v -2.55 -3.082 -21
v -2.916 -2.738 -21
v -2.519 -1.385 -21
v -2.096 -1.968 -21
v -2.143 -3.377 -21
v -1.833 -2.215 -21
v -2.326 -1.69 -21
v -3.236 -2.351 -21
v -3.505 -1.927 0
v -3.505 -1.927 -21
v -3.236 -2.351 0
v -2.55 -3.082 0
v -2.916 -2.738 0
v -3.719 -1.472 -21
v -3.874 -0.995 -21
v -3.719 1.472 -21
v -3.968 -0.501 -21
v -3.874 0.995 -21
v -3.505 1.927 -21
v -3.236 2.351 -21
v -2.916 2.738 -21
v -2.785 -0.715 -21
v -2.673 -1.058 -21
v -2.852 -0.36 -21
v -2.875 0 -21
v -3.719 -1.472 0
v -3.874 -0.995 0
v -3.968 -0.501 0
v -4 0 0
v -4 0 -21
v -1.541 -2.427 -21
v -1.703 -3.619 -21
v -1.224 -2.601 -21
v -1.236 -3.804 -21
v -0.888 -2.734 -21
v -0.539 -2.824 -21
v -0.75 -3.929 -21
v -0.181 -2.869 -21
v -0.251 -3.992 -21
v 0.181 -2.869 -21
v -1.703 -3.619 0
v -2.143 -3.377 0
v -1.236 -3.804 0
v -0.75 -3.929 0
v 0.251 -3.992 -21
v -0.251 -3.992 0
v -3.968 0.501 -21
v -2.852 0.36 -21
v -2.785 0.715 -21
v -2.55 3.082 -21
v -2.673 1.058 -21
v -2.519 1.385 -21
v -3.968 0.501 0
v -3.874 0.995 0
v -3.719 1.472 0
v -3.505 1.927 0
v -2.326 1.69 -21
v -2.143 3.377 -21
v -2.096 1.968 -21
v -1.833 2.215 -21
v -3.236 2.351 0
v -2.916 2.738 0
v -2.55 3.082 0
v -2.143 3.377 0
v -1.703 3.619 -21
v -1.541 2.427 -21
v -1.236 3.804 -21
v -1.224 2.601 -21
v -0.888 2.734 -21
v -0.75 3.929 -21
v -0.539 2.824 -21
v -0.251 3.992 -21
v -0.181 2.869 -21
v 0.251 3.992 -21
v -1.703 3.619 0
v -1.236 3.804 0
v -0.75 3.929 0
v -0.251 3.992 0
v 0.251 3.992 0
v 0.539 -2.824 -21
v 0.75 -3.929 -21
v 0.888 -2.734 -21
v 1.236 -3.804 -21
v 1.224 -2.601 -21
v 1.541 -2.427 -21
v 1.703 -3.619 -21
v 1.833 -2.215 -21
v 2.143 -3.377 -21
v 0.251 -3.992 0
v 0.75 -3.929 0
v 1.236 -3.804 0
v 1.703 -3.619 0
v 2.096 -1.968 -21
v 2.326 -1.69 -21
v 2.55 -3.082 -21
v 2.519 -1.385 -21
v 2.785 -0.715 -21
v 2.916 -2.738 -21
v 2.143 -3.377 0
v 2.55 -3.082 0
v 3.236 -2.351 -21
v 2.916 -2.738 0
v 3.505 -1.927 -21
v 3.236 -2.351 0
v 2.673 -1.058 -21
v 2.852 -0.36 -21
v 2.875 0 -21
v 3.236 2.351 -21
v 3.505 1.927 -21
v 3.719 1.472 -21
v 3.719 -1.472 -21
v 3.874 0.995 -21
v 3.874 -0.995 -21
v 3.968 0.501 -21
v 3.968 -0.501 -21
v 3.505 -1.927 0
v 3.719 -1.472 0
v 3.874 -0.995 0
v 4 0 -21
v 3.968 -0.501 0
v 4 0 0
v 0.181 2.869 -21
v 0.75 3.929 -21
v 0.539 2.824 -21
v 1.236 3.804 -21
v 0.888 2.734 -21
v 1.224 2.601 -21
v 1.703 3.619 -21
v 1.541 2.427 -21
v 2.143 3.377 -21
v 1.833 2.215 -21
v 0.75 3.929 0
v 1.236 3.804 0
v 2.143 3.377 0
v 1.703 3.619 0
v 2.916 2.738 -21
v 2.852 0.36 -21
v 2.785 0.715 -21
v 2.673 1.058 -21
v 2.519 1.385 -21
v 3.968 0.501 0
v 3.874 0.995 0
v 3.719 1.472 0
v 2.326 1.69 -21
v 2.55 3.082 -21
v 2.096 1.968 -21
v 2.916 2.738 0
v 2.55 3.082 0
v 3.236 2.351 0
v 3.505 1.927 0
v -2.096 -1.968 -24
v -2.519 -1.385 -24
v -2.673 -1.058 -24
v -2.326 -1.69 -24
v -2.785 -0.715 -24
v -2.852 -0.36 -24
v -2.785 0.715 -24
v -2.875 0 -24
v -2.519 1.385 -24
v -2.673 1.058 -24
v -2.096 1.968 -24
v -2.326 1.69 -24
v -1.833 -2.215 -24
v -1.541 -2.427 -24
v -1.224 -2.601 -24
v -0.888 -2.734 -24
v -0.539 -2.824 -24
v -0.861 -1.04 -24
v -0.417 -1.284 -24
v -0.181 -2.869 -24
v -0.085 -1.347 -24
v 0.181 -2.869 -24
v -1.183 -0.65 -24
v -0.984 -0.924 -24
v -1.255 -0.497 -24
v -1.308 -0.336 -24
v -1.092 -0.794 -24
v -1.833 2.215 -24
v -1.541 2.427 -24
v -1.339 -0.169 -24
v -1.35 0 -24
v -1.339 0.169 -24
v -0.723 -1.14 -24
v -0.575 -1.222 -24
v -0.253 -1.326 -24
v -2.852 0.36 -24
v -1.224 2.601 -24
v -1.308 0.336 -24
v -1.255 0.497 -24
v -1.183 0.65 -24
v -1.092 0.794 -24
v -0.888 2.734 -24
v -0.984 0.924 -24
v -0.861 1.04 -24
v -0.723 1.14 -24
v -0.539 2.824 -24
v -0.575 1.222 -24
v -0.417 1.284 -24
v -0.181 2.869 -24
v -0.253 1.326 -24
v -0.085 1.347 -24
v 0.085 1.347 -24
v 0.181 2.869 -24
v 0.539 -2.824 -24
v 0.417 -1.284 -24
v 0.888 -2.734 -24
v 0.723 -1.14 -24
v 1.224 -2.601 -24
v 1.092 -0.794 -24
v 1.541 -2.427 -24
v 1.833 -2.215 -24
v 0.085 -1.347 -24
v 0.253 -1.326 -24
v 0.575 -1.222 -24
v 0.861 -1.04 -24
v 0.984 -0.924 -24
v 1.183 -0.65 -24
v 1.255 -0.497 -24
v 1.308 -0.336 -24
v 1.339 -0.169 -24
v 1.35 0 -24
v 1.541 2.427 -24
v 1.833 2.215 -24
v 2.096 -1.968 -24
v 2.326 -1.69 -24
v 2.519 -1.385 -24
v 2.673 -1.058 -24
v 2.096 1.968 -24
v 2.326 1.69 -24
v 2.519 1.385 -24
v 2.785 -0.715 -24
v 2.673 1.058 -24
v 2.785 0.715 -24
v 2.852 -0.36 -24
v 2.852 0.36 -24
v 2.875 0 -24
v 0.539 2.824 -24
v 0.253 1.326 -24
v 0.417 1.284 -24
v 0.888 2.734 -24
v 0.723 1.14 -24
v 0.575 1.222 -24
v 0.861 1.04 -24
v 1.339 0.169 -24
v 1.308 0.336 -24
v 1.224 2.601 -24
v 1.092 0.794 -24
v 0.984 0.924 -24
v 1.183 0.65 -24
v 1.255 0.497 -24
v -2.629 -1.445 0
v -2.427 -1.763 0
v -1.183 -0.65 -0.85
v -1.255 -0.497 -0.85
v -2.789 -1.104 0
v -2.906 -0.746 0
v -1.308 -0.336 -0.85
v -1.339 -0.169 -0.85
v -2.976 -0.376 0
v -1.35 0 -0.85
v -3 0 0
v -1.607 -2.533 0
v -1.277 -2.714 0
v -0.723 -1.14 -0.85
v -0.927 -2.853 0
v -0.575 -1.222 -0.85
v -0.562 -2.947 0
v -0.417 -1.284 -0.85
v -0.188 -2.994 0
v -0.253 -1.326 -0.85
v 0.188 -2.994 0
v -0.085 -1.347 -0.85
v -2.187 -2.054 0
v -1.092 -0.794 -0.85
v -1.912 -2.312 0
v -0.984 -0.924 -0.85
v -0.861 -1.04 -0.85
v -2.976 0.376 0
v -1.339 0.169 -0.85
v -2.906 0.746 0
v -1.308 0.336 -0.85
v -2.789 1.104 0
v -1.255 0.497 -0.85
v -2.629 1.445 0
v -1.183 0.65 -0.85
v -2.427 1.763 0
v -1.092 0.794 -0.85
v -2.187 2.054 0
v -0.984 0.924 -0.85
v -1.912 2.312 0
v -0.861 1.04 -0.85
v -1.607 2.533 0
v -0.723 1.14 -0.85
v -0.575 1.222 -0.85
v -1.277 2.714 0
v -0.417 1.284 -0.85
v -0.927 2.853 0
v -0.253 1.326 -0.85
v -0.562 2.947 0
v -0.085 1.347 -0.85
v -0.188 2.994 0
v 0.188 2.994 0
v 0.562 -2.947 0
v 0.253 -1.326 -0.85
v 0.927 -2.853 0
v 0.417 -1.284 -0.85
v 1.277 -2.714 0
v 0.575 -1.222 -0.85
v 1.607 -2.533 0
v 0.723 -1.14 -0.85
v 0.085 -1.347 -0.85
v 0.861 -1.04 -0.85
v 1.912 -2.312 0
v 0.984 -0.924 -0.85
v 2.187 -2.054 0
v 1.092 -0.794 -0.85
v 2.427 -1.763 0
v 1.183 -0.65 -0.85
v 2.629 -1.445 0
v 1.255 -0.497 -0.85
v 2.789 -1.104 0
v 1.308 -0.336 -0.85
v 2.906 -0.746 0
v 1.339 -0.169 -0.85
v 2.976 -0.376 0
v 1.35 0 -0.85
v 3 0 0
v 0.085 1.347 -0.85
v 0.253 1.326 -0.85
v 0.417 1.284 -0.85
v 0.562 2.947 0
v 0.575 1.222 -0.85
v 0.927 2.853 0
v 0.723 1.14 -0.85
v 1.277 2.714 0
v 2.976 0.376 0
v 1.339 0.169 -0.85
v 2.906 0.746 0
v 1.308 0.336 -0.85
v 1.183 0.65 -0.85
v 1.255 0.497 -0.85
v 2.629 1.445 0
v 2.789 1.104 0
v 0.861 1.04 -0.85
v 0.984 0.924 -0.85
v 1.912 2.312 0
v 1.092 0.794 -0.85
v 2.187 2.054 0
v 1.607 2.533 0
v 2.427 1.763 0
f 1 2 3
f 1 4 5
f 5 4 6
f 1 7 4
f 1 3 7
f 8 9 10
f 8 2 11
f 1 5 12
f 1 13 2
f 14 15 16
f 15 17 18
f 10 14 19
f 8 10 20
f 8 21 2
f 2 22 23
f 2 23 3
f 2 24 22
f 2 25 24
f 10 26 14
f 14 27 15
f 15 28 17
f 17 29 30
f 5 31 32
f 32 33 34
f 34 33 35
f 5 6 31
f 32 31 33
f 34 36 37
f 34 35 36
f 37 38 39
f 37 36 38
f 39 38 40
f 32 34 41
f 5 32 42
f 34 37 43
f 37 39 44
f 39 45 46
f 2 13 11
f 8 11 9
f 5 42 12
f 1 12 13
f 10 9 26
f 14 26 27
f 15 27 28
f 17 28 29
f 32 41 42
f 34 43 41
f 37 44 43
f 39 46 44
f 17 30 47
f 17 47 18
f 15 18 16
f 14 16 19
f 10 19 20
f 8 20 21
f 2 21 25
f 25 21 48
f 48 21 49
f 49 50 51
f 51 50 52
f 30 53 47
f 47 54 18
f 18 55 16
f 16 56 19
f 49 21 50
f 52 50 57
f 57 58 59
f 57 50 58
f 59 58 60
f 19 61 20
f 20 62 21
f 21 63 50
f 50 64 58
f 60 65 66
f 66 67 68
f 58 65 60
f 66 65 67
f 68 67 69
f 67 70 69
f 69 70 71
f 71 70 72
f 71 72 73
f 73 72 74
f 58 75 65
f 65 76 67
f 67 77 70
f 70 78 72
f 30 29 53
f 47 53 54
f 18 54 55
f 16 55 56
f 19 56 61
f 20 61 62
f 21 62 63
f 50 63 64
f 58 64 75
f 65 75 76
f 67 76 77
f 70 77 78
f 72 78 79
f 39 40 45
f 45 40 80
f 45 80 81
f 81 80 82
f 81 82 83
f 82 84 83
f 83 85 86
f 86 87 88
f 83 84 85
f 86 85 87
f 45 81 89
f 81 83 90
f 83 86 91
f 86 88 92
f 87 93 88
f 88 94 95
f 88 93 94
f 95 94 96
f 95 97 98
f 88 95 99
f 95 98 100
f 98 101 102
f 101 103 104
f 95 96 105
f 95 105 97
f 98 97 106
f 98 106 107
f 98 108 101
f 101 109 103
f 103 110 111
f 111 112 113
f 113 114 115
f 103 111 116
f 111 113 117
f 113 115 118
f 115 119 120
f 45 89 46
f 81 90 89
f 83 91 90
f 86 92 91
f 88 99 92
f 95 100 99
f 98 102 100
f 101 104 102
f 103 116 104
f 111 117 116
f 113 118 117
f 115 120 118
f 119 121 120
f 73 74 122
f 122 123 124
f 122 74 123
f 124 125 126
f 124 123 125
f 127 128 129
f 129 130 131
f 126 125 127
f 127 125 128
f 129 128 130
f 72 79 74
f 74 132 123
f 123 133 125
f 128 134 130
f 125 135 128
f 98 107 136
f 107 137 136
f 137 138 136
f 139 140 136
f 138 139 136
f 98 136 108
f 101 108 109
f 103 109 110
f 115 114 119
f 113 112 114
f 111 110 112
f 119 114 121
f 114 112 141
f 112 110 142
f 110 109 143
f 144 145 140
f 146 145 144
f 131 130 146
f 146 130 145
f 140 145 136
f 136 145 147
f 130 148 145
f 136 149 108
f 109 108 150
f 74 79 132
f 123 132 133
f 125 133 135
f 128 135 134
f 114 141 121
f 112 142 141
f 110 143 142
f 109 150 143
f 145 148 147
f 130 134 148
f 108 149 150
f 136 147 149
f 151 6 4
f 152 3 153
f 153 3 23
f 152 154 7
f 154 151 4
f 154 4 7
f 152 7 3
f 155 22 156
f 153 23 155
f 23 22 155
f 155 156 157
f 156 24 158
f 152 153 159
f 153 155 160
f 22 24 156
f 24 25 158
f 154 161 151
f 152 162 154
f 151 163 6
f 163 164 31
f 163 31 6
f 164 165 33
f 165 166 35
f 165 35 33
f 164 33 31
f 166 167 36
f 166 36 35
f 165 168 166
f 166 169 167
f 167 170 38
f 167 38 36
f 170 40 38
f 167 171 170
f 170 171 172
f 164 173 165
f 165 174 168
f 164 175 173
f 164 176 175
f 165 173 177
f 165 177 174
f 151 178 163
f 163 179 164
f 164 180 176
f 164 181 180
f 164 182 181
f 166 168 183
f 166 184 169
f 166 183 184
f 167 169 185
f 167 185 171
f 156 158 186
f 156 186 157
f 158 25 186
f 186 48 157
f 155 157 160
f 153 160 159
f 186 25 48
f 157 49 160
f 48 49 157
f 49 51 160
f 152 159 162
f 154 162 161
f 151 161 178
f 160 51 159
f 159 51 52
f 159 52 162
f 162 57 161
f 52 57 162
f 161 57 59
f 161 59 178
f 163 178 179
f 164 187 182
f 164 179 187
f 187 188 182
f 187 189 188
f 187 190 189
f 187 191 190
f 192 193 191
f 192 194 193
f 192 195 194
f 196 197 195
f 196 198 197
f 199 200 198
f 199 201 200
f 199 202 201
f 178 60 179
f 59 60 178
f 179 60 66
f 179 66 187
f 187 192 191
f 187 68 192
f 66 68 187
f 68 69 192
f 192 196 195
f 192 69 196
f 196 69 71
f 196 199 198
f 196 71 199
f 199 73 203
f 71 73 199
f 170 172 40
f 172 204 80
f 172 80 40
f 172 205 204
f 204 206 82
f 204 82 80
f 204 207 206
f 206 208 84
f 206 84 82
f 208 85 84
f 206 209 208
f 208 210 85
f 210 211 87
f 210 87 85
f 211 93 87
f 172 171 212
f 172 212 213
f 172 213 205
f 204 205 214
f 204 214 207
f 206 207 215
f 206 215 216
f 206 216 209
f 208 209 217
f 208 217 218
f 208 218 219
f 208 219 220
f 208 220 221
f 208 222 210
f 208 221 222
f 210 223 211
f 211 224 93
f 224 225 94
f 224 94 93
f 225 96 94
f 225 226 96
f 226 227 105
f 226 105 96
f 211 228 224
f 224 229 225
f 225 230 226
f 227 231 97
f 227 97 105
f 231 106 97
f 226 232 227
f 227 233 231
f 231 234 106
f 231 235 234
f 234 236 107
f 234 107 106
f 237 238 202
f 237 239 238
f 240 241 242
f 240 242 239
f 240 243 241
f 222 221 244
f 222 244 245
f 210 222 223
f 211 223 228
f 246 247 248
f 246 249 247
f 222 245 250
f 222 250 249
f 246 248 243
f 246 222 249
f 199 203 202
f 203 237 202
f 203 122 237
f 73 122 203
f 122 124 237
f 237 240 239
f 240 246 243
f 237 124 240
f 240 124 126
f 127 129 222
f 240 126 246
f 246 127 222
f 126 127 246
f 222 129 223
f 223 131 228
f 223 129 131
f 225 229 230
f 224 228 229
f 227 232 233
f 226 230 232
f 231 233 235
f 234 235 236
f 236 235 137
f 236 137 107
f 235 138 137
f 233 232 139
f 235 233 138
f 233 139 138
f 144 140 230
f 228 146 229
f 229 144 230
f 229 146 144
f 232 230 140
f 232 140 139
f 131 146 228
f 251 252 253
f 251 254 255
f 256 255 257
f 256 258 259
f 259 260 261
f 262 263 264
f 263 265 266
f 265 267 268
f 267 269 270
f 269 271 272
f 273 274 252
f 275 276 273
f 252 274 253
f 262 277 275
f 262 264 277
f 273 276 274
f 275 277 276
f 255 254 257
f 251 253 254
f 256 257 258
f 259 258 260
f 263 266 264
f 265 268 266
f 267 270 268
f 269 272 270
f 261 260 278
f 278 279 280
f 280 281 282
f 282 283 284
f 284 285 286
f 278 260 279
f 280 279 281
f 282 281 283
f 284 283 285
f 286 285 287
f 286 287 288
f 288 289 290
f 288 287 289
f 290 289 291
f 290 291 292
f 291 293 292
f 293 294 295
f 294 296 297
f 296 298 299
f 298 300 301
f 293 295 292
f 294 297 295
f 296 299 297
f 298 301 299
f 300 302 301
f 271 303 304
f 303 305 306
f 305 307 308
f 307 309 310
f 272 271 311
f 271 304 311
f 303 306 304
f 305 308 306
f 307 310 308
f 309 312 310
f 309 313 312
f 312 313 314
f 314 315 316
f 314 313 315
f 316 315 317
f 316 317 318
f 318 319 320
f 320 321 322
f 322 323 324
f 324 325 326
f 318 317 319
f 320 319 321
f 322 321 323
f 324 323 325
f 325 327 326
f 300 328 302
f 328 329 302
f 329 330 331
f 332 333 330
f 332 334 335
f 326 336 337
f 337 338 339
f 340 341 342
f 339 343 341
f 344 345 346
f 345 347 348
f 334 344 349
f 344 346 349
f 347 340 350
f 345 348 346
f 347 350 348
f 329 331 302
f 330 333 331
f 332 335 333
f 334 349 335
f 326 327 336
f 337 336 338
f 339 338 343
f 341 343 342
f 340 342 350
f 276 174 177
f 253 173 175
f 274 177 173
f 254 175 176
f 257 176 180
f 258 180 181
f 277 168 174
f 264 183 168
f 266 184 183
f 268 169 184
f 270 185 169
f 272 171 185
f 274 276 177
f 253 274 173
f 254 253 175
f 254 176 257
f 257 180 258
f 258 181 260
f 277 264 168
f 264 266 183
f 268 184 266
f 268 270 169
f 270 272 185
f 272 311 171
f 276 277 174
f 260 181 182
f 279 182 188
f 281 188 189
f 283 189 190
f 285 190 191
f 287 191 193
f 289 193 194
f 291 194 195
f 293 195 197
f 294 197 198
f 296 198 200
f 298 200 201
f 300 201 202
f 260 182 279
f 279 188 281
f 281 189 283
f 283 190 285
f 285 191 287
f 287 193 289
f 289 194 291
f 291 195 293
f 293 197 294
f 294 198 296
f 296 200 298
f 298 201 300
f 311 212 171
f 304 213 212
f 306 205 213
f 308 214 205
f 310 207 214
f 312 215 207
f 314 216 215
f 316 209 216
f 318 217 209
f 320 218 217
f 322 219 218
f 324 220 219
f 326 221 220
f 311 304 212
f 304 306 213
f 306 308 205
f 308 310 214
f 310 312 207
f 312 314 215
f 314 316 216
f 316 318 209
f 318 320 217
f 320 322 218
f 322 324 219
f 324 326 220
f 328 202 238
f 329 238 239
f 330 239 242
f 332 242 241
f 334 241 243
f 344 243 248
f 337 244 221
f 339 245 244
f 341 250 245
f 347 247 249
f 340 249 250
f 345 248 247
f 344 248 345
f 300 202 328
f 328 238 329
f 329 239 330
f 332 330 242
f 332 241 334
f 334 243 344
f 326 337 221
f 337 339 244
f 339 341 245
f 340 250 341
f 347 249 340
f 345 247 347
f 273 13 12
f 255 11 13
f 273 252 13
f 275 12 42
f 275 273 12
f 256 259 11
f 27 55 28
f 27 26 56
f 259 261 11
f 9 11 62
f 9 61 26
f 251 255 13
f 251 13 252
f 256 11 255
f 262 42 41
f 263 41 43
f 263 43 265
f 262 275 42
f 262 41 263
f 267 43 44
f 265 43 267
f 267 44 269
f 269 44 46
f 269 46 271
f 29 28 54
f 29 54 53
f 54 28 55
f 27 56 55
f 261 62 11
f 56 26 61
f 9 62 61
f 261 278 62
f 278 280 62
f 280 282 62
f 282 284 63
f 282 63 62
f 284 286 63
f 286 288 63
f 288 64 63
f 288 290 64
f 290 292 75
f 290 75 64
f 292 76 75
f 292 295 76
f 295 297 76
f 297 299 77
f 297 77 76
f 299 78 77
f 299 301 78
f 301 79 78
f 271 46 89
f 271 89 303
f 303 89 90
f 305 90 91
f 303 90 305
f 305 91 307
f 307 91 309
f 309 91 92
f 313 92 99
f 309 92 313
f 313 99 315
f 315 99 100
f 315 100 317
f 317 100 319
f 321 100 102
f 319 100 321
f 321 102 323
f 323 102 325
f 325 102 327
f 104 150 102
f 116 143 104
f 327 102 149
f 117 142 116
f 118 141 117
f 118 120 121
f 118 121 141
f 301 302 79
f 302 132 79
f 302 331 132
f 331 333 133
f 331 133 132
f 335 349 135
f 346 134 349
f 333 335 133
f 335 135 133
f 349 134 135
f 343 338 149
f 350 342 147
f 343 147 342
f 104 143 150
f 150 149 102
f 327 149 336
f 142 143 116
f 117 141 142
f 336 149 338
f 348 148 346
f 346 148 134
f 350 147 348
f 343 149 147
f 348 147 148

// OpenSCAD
$fn = 50;

difference() {
	union() {
		translate(v = [0, 0, -21.0]) {
			cylinder(h = 24, r = 4.0);
		}
		#translate(v = [0, 0, -24.0]) {
			cylinder(h = 24, r = 2.875);
		}
	}
	union() {
		translate(v = [0, 0, 0]) {
			rotate(a = [0, 0, 0]) {
				difference() {
					union() {
						translate(v = [0, 0, -24.0]) {
							cylinder(h = 24, r = 1.0);
						}
						translate(v = [0, 0, -0.85]) {
							cylinder(h = 0.85, r1 = 1.35, r2 = 3.0);
						}
						translate(v = [0, 0, -24.0]) {
							cylinder(h = 24, r = 1.35);
						}
						translate(v = [0, 0, -24.0]) {
							cylinder(h = 24, r = 1.0);
						}
					}
					union();
				}
			}
		}
		#cylinder(h = 3, r = 5.0);
	}
}
